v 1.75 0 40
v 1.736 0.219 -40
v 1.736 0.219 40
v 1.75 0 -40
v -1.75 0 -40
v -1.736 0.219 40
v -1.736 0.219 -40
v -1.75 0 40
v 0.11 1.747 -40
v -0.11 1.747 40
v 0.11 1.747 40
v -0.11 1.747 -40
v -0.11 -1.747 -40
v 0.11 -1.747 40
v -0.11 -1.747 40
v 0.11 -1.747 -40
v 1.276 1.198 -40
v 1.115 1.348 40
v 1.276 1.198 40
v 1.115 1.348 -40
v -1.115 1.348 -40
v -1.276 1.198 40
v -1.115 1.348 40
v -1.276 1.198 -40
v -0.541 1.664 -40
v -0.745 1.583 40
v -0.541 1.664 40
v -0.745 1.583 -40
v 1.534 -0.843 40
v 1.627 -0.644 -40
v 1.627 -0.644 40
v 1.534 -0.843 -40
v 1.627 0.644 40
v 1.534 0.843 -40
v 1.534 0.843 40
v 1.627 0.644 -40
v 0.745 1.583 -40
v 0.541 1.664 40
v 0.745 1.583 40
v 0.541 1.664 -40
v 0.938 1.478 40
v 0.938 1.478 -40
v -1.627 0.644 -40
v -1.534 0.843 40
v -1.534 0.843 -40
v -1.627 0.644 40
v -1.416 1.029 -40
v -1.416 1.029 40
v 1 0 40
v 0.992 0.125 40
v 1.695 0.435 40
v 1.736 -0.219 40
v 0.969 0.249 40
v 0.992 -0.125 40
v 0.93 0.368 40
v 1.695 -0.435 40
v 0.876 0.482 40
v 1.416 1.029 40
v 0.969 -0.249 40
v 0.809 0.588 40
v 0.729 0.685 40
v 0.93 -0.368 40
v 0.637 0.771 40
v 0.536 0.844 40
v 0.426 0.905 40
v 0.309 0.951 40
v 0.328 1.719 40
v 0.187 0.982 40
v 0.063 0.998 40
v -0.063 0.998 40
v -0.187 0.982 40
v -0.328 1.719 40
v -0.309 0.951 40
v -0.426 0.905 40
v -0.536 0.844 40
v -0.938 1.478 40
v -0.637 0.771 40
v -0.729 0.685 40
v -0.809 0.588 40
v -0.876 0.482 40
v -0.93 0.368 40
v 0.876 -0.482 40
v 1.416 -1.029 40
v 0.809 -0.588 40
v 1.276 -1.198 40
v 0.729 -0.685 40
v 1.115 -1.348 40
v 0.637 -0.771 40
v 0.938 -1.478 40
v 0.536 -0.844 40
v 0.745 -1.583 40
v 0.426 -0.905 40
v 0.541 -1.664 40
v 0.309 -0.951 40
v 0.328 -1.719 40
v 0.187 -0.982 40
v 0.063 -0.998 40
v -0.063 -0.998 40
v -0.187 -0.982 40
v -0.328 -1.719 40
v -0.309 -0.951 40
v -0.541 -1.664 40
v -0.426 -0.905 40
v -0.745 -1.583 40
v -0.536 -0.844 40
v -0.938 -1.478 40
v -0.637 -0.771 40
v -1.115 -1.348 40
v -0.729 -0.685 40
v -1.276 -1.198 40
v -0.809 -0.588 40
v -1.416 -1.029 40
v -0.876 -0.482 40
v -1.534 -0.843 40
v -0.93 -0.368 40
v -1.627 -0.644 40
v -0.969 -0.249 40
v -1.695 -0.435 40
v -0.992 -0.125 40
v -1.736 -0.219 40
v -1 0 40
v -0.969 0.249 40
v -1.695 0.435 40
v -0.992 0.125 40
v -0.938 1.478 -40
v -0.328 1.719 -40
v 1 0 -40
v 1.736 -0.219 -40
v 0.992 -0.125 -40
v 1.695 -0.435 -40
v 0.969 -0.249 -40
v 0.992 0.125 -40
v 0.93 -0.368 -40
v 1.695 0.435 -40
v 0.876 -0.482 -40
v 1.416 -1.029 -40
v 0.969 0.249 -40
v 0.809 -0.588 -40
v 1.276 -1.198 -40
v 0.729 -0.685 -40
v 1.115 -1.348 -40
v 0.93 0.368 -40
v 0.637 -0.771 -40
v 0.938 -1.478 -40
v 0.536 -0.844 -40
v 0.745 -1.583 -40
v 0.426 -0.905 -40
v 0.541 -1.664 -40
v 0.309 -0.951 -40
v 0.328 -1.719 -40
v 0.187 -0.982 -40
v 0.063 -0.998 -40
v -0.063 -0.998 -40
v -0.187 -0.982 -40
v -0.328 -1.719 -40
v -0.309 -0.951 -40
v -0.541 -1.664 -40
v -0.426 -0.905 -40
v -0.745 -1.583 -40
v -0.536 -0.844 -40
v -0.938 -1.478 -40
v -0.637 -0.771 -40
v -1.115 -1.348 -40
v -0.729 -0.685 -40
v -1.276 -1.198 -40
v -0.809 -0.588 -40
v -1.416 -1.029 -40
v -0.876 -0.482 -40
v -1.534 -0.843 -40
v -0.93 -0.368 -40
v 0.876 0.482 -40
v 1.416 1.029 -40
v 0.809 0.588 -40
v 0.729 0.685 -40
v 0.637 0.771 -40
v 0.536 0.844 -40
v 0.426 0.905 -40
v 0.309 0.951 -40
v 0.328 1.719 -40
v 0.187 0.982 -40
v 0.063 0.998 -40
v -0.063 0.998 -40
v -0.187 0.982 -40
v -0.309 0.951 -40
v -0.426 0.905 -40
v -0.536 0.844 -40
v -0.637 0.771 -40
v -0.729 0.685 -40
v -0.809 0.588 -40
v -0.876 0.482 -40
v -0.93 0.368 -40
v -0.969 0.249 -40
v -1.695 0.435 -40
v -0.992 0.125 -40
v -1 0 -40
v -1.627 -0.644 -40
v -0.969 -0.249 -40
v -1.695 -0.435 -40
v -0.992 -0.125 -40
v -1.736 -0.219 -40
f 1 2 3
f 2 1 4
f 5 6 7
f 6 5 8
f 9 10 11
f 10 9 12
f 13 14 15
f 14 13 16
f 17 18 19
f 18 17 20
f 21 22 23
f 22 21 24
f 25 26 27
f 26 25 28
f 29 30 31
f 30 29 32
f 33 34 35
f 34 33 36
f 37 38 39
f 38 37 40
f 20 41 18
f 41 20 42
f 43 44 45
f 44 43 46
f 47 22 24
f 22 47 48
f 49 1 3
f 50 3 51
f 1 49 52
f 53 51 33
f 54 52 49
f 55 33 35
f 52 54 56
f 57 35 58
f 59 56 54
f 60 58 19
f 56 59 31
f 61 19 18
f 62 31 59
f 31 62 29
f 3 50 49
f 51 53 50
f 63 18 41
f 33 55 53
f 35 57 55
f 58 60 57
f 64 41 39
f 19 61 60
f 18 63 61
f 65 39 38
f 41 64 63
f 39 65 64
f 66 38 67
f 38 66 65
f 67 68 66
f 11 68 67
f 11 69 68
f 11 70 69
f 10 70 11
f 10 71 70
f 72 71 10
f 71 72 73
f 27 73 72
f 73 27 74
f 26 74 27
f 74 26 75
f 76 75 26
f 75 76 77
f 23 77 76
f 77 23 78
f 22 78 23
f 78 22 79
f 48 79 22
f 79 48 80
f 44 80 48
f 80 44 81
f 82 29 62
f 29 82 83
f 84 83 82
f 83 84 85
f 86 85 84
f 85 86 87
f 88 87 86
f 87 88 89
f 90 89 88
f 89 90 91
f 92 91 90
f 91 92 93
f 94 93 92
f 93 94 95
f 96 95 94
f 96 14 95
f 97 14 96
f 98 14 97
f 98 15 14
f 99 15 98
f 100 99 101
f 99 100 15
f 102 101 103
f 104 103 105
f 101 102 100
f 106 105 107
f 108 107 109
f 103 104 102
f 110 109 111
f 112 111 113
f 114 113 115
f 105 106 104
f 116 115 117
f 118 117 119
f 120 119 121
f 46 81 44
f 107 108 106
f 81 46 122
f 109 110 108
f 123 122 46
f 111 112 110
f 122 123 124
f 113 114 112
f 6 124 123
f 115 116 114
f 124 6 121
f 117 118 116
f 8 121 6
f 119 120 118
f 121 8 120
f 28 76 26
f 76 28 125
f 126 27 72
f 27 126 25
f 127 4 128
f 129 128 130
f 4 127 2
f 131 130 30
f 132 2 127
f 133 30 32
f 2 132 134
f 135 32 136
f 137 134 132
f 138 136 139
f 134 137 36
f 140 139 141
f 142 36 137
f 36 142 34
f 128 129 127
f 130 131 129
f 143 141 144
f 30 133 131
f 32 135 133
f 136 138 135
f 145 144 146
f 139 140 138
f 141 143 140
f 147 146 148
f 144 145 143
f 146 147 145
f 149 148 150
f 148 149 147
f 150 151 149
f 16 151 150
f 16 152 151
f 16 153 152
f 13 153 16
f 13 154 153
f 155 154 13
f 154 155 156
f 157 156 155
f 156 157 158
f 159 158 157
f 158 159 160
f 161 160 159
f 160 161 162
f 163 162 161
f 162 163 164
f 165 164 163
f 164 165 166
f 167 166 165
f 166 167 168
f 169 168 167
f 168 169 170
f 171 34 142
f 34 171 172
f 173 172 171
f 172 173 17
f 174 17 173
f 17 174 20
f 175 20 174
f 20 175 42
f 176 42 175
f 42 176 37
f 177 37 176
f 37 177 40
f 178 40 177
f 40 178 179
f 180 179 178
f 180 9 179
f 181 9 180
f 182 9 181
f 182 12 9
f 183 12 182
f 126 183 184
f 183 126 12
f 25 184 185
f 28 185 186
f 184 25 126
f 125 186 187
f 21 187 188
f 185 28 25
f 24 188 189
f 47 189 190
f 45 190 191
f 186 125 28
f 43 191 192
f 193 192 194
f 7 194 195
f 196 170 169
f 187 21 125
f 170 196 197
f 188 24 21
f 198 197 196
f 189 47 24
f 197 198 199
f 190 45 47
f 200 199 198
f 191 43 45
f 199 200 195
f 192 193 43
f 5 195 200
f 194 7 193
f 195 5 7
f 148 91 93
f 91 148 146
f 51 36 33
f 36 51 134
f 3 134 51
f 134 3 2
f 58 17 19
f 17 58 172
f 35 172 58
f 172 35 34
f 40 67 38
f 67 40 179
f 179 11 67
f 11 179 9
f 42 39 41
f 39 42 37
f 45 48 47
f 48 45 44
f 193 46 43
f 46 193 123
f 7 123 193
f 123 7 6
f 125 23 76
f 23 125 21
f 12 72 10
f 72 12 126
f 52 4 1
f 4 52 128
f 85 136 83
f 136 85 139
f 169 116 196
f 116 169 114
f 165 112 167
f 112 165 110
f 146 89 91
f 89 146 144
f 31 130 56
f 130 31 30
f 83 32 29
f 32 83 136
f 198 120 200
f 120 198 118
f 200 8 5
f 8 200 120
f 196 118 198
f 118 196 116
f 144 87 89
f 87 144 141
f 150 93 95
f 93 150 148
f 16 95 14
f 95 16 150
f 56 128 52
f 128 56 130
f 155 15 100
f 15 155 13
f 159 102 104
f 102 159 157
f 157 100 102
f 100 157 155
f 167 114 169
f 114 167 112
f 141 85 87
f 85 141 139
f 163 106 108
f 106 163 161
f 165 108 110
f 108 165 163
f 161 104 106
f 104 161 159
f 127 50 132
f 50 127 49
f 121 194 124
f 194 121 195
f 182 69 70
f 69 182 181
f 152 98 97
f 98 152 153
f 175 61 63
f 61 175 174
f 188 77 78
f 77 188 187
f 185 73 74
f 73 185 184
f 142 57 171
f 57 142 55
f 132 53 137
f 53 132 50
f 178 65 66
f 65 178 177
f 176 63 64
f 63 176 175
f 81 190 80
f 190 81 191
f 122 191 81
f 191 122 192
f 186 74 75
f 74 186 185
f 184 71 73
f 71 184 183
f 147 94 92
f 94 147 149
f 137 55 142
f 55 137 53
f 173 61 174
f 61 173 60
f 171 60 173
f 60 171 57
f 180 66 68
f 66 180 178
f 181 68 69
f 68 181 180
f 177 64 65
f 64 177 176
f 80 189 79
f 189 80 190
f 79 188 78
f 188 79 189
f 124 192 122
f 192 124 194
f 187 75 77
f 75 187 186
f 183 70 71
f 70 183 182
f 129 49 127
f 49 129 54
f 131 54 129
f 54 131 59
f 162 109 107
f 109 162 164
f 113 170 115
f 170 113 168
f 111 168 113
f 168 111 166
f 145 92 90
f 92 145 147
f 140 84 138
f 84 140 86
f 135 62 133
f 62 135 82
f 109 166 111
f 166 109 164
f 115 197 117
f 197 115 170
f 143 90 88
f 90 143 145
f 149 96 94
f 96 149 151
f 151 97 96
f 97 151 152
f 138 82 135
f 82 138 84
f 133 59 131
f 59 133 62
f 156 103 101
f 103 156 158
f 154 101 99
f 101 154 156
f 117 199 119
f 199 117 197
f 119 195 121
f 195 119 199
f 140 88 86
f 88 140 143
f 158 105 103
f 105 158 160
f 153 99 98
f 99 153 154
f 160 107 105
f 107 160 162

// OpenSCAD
$fn = 50;


difference() {
	union() {
		translate(v = [0, 0, -40.0000000000]) {
			cylinder(h = 80, r = 1.7500000000);
		}
	}
	union() {
		translate(v = [0, 0, -100.0000000000]) {
			cylinder(h = 200, r = 1.0000000000);
		}
	}
}
